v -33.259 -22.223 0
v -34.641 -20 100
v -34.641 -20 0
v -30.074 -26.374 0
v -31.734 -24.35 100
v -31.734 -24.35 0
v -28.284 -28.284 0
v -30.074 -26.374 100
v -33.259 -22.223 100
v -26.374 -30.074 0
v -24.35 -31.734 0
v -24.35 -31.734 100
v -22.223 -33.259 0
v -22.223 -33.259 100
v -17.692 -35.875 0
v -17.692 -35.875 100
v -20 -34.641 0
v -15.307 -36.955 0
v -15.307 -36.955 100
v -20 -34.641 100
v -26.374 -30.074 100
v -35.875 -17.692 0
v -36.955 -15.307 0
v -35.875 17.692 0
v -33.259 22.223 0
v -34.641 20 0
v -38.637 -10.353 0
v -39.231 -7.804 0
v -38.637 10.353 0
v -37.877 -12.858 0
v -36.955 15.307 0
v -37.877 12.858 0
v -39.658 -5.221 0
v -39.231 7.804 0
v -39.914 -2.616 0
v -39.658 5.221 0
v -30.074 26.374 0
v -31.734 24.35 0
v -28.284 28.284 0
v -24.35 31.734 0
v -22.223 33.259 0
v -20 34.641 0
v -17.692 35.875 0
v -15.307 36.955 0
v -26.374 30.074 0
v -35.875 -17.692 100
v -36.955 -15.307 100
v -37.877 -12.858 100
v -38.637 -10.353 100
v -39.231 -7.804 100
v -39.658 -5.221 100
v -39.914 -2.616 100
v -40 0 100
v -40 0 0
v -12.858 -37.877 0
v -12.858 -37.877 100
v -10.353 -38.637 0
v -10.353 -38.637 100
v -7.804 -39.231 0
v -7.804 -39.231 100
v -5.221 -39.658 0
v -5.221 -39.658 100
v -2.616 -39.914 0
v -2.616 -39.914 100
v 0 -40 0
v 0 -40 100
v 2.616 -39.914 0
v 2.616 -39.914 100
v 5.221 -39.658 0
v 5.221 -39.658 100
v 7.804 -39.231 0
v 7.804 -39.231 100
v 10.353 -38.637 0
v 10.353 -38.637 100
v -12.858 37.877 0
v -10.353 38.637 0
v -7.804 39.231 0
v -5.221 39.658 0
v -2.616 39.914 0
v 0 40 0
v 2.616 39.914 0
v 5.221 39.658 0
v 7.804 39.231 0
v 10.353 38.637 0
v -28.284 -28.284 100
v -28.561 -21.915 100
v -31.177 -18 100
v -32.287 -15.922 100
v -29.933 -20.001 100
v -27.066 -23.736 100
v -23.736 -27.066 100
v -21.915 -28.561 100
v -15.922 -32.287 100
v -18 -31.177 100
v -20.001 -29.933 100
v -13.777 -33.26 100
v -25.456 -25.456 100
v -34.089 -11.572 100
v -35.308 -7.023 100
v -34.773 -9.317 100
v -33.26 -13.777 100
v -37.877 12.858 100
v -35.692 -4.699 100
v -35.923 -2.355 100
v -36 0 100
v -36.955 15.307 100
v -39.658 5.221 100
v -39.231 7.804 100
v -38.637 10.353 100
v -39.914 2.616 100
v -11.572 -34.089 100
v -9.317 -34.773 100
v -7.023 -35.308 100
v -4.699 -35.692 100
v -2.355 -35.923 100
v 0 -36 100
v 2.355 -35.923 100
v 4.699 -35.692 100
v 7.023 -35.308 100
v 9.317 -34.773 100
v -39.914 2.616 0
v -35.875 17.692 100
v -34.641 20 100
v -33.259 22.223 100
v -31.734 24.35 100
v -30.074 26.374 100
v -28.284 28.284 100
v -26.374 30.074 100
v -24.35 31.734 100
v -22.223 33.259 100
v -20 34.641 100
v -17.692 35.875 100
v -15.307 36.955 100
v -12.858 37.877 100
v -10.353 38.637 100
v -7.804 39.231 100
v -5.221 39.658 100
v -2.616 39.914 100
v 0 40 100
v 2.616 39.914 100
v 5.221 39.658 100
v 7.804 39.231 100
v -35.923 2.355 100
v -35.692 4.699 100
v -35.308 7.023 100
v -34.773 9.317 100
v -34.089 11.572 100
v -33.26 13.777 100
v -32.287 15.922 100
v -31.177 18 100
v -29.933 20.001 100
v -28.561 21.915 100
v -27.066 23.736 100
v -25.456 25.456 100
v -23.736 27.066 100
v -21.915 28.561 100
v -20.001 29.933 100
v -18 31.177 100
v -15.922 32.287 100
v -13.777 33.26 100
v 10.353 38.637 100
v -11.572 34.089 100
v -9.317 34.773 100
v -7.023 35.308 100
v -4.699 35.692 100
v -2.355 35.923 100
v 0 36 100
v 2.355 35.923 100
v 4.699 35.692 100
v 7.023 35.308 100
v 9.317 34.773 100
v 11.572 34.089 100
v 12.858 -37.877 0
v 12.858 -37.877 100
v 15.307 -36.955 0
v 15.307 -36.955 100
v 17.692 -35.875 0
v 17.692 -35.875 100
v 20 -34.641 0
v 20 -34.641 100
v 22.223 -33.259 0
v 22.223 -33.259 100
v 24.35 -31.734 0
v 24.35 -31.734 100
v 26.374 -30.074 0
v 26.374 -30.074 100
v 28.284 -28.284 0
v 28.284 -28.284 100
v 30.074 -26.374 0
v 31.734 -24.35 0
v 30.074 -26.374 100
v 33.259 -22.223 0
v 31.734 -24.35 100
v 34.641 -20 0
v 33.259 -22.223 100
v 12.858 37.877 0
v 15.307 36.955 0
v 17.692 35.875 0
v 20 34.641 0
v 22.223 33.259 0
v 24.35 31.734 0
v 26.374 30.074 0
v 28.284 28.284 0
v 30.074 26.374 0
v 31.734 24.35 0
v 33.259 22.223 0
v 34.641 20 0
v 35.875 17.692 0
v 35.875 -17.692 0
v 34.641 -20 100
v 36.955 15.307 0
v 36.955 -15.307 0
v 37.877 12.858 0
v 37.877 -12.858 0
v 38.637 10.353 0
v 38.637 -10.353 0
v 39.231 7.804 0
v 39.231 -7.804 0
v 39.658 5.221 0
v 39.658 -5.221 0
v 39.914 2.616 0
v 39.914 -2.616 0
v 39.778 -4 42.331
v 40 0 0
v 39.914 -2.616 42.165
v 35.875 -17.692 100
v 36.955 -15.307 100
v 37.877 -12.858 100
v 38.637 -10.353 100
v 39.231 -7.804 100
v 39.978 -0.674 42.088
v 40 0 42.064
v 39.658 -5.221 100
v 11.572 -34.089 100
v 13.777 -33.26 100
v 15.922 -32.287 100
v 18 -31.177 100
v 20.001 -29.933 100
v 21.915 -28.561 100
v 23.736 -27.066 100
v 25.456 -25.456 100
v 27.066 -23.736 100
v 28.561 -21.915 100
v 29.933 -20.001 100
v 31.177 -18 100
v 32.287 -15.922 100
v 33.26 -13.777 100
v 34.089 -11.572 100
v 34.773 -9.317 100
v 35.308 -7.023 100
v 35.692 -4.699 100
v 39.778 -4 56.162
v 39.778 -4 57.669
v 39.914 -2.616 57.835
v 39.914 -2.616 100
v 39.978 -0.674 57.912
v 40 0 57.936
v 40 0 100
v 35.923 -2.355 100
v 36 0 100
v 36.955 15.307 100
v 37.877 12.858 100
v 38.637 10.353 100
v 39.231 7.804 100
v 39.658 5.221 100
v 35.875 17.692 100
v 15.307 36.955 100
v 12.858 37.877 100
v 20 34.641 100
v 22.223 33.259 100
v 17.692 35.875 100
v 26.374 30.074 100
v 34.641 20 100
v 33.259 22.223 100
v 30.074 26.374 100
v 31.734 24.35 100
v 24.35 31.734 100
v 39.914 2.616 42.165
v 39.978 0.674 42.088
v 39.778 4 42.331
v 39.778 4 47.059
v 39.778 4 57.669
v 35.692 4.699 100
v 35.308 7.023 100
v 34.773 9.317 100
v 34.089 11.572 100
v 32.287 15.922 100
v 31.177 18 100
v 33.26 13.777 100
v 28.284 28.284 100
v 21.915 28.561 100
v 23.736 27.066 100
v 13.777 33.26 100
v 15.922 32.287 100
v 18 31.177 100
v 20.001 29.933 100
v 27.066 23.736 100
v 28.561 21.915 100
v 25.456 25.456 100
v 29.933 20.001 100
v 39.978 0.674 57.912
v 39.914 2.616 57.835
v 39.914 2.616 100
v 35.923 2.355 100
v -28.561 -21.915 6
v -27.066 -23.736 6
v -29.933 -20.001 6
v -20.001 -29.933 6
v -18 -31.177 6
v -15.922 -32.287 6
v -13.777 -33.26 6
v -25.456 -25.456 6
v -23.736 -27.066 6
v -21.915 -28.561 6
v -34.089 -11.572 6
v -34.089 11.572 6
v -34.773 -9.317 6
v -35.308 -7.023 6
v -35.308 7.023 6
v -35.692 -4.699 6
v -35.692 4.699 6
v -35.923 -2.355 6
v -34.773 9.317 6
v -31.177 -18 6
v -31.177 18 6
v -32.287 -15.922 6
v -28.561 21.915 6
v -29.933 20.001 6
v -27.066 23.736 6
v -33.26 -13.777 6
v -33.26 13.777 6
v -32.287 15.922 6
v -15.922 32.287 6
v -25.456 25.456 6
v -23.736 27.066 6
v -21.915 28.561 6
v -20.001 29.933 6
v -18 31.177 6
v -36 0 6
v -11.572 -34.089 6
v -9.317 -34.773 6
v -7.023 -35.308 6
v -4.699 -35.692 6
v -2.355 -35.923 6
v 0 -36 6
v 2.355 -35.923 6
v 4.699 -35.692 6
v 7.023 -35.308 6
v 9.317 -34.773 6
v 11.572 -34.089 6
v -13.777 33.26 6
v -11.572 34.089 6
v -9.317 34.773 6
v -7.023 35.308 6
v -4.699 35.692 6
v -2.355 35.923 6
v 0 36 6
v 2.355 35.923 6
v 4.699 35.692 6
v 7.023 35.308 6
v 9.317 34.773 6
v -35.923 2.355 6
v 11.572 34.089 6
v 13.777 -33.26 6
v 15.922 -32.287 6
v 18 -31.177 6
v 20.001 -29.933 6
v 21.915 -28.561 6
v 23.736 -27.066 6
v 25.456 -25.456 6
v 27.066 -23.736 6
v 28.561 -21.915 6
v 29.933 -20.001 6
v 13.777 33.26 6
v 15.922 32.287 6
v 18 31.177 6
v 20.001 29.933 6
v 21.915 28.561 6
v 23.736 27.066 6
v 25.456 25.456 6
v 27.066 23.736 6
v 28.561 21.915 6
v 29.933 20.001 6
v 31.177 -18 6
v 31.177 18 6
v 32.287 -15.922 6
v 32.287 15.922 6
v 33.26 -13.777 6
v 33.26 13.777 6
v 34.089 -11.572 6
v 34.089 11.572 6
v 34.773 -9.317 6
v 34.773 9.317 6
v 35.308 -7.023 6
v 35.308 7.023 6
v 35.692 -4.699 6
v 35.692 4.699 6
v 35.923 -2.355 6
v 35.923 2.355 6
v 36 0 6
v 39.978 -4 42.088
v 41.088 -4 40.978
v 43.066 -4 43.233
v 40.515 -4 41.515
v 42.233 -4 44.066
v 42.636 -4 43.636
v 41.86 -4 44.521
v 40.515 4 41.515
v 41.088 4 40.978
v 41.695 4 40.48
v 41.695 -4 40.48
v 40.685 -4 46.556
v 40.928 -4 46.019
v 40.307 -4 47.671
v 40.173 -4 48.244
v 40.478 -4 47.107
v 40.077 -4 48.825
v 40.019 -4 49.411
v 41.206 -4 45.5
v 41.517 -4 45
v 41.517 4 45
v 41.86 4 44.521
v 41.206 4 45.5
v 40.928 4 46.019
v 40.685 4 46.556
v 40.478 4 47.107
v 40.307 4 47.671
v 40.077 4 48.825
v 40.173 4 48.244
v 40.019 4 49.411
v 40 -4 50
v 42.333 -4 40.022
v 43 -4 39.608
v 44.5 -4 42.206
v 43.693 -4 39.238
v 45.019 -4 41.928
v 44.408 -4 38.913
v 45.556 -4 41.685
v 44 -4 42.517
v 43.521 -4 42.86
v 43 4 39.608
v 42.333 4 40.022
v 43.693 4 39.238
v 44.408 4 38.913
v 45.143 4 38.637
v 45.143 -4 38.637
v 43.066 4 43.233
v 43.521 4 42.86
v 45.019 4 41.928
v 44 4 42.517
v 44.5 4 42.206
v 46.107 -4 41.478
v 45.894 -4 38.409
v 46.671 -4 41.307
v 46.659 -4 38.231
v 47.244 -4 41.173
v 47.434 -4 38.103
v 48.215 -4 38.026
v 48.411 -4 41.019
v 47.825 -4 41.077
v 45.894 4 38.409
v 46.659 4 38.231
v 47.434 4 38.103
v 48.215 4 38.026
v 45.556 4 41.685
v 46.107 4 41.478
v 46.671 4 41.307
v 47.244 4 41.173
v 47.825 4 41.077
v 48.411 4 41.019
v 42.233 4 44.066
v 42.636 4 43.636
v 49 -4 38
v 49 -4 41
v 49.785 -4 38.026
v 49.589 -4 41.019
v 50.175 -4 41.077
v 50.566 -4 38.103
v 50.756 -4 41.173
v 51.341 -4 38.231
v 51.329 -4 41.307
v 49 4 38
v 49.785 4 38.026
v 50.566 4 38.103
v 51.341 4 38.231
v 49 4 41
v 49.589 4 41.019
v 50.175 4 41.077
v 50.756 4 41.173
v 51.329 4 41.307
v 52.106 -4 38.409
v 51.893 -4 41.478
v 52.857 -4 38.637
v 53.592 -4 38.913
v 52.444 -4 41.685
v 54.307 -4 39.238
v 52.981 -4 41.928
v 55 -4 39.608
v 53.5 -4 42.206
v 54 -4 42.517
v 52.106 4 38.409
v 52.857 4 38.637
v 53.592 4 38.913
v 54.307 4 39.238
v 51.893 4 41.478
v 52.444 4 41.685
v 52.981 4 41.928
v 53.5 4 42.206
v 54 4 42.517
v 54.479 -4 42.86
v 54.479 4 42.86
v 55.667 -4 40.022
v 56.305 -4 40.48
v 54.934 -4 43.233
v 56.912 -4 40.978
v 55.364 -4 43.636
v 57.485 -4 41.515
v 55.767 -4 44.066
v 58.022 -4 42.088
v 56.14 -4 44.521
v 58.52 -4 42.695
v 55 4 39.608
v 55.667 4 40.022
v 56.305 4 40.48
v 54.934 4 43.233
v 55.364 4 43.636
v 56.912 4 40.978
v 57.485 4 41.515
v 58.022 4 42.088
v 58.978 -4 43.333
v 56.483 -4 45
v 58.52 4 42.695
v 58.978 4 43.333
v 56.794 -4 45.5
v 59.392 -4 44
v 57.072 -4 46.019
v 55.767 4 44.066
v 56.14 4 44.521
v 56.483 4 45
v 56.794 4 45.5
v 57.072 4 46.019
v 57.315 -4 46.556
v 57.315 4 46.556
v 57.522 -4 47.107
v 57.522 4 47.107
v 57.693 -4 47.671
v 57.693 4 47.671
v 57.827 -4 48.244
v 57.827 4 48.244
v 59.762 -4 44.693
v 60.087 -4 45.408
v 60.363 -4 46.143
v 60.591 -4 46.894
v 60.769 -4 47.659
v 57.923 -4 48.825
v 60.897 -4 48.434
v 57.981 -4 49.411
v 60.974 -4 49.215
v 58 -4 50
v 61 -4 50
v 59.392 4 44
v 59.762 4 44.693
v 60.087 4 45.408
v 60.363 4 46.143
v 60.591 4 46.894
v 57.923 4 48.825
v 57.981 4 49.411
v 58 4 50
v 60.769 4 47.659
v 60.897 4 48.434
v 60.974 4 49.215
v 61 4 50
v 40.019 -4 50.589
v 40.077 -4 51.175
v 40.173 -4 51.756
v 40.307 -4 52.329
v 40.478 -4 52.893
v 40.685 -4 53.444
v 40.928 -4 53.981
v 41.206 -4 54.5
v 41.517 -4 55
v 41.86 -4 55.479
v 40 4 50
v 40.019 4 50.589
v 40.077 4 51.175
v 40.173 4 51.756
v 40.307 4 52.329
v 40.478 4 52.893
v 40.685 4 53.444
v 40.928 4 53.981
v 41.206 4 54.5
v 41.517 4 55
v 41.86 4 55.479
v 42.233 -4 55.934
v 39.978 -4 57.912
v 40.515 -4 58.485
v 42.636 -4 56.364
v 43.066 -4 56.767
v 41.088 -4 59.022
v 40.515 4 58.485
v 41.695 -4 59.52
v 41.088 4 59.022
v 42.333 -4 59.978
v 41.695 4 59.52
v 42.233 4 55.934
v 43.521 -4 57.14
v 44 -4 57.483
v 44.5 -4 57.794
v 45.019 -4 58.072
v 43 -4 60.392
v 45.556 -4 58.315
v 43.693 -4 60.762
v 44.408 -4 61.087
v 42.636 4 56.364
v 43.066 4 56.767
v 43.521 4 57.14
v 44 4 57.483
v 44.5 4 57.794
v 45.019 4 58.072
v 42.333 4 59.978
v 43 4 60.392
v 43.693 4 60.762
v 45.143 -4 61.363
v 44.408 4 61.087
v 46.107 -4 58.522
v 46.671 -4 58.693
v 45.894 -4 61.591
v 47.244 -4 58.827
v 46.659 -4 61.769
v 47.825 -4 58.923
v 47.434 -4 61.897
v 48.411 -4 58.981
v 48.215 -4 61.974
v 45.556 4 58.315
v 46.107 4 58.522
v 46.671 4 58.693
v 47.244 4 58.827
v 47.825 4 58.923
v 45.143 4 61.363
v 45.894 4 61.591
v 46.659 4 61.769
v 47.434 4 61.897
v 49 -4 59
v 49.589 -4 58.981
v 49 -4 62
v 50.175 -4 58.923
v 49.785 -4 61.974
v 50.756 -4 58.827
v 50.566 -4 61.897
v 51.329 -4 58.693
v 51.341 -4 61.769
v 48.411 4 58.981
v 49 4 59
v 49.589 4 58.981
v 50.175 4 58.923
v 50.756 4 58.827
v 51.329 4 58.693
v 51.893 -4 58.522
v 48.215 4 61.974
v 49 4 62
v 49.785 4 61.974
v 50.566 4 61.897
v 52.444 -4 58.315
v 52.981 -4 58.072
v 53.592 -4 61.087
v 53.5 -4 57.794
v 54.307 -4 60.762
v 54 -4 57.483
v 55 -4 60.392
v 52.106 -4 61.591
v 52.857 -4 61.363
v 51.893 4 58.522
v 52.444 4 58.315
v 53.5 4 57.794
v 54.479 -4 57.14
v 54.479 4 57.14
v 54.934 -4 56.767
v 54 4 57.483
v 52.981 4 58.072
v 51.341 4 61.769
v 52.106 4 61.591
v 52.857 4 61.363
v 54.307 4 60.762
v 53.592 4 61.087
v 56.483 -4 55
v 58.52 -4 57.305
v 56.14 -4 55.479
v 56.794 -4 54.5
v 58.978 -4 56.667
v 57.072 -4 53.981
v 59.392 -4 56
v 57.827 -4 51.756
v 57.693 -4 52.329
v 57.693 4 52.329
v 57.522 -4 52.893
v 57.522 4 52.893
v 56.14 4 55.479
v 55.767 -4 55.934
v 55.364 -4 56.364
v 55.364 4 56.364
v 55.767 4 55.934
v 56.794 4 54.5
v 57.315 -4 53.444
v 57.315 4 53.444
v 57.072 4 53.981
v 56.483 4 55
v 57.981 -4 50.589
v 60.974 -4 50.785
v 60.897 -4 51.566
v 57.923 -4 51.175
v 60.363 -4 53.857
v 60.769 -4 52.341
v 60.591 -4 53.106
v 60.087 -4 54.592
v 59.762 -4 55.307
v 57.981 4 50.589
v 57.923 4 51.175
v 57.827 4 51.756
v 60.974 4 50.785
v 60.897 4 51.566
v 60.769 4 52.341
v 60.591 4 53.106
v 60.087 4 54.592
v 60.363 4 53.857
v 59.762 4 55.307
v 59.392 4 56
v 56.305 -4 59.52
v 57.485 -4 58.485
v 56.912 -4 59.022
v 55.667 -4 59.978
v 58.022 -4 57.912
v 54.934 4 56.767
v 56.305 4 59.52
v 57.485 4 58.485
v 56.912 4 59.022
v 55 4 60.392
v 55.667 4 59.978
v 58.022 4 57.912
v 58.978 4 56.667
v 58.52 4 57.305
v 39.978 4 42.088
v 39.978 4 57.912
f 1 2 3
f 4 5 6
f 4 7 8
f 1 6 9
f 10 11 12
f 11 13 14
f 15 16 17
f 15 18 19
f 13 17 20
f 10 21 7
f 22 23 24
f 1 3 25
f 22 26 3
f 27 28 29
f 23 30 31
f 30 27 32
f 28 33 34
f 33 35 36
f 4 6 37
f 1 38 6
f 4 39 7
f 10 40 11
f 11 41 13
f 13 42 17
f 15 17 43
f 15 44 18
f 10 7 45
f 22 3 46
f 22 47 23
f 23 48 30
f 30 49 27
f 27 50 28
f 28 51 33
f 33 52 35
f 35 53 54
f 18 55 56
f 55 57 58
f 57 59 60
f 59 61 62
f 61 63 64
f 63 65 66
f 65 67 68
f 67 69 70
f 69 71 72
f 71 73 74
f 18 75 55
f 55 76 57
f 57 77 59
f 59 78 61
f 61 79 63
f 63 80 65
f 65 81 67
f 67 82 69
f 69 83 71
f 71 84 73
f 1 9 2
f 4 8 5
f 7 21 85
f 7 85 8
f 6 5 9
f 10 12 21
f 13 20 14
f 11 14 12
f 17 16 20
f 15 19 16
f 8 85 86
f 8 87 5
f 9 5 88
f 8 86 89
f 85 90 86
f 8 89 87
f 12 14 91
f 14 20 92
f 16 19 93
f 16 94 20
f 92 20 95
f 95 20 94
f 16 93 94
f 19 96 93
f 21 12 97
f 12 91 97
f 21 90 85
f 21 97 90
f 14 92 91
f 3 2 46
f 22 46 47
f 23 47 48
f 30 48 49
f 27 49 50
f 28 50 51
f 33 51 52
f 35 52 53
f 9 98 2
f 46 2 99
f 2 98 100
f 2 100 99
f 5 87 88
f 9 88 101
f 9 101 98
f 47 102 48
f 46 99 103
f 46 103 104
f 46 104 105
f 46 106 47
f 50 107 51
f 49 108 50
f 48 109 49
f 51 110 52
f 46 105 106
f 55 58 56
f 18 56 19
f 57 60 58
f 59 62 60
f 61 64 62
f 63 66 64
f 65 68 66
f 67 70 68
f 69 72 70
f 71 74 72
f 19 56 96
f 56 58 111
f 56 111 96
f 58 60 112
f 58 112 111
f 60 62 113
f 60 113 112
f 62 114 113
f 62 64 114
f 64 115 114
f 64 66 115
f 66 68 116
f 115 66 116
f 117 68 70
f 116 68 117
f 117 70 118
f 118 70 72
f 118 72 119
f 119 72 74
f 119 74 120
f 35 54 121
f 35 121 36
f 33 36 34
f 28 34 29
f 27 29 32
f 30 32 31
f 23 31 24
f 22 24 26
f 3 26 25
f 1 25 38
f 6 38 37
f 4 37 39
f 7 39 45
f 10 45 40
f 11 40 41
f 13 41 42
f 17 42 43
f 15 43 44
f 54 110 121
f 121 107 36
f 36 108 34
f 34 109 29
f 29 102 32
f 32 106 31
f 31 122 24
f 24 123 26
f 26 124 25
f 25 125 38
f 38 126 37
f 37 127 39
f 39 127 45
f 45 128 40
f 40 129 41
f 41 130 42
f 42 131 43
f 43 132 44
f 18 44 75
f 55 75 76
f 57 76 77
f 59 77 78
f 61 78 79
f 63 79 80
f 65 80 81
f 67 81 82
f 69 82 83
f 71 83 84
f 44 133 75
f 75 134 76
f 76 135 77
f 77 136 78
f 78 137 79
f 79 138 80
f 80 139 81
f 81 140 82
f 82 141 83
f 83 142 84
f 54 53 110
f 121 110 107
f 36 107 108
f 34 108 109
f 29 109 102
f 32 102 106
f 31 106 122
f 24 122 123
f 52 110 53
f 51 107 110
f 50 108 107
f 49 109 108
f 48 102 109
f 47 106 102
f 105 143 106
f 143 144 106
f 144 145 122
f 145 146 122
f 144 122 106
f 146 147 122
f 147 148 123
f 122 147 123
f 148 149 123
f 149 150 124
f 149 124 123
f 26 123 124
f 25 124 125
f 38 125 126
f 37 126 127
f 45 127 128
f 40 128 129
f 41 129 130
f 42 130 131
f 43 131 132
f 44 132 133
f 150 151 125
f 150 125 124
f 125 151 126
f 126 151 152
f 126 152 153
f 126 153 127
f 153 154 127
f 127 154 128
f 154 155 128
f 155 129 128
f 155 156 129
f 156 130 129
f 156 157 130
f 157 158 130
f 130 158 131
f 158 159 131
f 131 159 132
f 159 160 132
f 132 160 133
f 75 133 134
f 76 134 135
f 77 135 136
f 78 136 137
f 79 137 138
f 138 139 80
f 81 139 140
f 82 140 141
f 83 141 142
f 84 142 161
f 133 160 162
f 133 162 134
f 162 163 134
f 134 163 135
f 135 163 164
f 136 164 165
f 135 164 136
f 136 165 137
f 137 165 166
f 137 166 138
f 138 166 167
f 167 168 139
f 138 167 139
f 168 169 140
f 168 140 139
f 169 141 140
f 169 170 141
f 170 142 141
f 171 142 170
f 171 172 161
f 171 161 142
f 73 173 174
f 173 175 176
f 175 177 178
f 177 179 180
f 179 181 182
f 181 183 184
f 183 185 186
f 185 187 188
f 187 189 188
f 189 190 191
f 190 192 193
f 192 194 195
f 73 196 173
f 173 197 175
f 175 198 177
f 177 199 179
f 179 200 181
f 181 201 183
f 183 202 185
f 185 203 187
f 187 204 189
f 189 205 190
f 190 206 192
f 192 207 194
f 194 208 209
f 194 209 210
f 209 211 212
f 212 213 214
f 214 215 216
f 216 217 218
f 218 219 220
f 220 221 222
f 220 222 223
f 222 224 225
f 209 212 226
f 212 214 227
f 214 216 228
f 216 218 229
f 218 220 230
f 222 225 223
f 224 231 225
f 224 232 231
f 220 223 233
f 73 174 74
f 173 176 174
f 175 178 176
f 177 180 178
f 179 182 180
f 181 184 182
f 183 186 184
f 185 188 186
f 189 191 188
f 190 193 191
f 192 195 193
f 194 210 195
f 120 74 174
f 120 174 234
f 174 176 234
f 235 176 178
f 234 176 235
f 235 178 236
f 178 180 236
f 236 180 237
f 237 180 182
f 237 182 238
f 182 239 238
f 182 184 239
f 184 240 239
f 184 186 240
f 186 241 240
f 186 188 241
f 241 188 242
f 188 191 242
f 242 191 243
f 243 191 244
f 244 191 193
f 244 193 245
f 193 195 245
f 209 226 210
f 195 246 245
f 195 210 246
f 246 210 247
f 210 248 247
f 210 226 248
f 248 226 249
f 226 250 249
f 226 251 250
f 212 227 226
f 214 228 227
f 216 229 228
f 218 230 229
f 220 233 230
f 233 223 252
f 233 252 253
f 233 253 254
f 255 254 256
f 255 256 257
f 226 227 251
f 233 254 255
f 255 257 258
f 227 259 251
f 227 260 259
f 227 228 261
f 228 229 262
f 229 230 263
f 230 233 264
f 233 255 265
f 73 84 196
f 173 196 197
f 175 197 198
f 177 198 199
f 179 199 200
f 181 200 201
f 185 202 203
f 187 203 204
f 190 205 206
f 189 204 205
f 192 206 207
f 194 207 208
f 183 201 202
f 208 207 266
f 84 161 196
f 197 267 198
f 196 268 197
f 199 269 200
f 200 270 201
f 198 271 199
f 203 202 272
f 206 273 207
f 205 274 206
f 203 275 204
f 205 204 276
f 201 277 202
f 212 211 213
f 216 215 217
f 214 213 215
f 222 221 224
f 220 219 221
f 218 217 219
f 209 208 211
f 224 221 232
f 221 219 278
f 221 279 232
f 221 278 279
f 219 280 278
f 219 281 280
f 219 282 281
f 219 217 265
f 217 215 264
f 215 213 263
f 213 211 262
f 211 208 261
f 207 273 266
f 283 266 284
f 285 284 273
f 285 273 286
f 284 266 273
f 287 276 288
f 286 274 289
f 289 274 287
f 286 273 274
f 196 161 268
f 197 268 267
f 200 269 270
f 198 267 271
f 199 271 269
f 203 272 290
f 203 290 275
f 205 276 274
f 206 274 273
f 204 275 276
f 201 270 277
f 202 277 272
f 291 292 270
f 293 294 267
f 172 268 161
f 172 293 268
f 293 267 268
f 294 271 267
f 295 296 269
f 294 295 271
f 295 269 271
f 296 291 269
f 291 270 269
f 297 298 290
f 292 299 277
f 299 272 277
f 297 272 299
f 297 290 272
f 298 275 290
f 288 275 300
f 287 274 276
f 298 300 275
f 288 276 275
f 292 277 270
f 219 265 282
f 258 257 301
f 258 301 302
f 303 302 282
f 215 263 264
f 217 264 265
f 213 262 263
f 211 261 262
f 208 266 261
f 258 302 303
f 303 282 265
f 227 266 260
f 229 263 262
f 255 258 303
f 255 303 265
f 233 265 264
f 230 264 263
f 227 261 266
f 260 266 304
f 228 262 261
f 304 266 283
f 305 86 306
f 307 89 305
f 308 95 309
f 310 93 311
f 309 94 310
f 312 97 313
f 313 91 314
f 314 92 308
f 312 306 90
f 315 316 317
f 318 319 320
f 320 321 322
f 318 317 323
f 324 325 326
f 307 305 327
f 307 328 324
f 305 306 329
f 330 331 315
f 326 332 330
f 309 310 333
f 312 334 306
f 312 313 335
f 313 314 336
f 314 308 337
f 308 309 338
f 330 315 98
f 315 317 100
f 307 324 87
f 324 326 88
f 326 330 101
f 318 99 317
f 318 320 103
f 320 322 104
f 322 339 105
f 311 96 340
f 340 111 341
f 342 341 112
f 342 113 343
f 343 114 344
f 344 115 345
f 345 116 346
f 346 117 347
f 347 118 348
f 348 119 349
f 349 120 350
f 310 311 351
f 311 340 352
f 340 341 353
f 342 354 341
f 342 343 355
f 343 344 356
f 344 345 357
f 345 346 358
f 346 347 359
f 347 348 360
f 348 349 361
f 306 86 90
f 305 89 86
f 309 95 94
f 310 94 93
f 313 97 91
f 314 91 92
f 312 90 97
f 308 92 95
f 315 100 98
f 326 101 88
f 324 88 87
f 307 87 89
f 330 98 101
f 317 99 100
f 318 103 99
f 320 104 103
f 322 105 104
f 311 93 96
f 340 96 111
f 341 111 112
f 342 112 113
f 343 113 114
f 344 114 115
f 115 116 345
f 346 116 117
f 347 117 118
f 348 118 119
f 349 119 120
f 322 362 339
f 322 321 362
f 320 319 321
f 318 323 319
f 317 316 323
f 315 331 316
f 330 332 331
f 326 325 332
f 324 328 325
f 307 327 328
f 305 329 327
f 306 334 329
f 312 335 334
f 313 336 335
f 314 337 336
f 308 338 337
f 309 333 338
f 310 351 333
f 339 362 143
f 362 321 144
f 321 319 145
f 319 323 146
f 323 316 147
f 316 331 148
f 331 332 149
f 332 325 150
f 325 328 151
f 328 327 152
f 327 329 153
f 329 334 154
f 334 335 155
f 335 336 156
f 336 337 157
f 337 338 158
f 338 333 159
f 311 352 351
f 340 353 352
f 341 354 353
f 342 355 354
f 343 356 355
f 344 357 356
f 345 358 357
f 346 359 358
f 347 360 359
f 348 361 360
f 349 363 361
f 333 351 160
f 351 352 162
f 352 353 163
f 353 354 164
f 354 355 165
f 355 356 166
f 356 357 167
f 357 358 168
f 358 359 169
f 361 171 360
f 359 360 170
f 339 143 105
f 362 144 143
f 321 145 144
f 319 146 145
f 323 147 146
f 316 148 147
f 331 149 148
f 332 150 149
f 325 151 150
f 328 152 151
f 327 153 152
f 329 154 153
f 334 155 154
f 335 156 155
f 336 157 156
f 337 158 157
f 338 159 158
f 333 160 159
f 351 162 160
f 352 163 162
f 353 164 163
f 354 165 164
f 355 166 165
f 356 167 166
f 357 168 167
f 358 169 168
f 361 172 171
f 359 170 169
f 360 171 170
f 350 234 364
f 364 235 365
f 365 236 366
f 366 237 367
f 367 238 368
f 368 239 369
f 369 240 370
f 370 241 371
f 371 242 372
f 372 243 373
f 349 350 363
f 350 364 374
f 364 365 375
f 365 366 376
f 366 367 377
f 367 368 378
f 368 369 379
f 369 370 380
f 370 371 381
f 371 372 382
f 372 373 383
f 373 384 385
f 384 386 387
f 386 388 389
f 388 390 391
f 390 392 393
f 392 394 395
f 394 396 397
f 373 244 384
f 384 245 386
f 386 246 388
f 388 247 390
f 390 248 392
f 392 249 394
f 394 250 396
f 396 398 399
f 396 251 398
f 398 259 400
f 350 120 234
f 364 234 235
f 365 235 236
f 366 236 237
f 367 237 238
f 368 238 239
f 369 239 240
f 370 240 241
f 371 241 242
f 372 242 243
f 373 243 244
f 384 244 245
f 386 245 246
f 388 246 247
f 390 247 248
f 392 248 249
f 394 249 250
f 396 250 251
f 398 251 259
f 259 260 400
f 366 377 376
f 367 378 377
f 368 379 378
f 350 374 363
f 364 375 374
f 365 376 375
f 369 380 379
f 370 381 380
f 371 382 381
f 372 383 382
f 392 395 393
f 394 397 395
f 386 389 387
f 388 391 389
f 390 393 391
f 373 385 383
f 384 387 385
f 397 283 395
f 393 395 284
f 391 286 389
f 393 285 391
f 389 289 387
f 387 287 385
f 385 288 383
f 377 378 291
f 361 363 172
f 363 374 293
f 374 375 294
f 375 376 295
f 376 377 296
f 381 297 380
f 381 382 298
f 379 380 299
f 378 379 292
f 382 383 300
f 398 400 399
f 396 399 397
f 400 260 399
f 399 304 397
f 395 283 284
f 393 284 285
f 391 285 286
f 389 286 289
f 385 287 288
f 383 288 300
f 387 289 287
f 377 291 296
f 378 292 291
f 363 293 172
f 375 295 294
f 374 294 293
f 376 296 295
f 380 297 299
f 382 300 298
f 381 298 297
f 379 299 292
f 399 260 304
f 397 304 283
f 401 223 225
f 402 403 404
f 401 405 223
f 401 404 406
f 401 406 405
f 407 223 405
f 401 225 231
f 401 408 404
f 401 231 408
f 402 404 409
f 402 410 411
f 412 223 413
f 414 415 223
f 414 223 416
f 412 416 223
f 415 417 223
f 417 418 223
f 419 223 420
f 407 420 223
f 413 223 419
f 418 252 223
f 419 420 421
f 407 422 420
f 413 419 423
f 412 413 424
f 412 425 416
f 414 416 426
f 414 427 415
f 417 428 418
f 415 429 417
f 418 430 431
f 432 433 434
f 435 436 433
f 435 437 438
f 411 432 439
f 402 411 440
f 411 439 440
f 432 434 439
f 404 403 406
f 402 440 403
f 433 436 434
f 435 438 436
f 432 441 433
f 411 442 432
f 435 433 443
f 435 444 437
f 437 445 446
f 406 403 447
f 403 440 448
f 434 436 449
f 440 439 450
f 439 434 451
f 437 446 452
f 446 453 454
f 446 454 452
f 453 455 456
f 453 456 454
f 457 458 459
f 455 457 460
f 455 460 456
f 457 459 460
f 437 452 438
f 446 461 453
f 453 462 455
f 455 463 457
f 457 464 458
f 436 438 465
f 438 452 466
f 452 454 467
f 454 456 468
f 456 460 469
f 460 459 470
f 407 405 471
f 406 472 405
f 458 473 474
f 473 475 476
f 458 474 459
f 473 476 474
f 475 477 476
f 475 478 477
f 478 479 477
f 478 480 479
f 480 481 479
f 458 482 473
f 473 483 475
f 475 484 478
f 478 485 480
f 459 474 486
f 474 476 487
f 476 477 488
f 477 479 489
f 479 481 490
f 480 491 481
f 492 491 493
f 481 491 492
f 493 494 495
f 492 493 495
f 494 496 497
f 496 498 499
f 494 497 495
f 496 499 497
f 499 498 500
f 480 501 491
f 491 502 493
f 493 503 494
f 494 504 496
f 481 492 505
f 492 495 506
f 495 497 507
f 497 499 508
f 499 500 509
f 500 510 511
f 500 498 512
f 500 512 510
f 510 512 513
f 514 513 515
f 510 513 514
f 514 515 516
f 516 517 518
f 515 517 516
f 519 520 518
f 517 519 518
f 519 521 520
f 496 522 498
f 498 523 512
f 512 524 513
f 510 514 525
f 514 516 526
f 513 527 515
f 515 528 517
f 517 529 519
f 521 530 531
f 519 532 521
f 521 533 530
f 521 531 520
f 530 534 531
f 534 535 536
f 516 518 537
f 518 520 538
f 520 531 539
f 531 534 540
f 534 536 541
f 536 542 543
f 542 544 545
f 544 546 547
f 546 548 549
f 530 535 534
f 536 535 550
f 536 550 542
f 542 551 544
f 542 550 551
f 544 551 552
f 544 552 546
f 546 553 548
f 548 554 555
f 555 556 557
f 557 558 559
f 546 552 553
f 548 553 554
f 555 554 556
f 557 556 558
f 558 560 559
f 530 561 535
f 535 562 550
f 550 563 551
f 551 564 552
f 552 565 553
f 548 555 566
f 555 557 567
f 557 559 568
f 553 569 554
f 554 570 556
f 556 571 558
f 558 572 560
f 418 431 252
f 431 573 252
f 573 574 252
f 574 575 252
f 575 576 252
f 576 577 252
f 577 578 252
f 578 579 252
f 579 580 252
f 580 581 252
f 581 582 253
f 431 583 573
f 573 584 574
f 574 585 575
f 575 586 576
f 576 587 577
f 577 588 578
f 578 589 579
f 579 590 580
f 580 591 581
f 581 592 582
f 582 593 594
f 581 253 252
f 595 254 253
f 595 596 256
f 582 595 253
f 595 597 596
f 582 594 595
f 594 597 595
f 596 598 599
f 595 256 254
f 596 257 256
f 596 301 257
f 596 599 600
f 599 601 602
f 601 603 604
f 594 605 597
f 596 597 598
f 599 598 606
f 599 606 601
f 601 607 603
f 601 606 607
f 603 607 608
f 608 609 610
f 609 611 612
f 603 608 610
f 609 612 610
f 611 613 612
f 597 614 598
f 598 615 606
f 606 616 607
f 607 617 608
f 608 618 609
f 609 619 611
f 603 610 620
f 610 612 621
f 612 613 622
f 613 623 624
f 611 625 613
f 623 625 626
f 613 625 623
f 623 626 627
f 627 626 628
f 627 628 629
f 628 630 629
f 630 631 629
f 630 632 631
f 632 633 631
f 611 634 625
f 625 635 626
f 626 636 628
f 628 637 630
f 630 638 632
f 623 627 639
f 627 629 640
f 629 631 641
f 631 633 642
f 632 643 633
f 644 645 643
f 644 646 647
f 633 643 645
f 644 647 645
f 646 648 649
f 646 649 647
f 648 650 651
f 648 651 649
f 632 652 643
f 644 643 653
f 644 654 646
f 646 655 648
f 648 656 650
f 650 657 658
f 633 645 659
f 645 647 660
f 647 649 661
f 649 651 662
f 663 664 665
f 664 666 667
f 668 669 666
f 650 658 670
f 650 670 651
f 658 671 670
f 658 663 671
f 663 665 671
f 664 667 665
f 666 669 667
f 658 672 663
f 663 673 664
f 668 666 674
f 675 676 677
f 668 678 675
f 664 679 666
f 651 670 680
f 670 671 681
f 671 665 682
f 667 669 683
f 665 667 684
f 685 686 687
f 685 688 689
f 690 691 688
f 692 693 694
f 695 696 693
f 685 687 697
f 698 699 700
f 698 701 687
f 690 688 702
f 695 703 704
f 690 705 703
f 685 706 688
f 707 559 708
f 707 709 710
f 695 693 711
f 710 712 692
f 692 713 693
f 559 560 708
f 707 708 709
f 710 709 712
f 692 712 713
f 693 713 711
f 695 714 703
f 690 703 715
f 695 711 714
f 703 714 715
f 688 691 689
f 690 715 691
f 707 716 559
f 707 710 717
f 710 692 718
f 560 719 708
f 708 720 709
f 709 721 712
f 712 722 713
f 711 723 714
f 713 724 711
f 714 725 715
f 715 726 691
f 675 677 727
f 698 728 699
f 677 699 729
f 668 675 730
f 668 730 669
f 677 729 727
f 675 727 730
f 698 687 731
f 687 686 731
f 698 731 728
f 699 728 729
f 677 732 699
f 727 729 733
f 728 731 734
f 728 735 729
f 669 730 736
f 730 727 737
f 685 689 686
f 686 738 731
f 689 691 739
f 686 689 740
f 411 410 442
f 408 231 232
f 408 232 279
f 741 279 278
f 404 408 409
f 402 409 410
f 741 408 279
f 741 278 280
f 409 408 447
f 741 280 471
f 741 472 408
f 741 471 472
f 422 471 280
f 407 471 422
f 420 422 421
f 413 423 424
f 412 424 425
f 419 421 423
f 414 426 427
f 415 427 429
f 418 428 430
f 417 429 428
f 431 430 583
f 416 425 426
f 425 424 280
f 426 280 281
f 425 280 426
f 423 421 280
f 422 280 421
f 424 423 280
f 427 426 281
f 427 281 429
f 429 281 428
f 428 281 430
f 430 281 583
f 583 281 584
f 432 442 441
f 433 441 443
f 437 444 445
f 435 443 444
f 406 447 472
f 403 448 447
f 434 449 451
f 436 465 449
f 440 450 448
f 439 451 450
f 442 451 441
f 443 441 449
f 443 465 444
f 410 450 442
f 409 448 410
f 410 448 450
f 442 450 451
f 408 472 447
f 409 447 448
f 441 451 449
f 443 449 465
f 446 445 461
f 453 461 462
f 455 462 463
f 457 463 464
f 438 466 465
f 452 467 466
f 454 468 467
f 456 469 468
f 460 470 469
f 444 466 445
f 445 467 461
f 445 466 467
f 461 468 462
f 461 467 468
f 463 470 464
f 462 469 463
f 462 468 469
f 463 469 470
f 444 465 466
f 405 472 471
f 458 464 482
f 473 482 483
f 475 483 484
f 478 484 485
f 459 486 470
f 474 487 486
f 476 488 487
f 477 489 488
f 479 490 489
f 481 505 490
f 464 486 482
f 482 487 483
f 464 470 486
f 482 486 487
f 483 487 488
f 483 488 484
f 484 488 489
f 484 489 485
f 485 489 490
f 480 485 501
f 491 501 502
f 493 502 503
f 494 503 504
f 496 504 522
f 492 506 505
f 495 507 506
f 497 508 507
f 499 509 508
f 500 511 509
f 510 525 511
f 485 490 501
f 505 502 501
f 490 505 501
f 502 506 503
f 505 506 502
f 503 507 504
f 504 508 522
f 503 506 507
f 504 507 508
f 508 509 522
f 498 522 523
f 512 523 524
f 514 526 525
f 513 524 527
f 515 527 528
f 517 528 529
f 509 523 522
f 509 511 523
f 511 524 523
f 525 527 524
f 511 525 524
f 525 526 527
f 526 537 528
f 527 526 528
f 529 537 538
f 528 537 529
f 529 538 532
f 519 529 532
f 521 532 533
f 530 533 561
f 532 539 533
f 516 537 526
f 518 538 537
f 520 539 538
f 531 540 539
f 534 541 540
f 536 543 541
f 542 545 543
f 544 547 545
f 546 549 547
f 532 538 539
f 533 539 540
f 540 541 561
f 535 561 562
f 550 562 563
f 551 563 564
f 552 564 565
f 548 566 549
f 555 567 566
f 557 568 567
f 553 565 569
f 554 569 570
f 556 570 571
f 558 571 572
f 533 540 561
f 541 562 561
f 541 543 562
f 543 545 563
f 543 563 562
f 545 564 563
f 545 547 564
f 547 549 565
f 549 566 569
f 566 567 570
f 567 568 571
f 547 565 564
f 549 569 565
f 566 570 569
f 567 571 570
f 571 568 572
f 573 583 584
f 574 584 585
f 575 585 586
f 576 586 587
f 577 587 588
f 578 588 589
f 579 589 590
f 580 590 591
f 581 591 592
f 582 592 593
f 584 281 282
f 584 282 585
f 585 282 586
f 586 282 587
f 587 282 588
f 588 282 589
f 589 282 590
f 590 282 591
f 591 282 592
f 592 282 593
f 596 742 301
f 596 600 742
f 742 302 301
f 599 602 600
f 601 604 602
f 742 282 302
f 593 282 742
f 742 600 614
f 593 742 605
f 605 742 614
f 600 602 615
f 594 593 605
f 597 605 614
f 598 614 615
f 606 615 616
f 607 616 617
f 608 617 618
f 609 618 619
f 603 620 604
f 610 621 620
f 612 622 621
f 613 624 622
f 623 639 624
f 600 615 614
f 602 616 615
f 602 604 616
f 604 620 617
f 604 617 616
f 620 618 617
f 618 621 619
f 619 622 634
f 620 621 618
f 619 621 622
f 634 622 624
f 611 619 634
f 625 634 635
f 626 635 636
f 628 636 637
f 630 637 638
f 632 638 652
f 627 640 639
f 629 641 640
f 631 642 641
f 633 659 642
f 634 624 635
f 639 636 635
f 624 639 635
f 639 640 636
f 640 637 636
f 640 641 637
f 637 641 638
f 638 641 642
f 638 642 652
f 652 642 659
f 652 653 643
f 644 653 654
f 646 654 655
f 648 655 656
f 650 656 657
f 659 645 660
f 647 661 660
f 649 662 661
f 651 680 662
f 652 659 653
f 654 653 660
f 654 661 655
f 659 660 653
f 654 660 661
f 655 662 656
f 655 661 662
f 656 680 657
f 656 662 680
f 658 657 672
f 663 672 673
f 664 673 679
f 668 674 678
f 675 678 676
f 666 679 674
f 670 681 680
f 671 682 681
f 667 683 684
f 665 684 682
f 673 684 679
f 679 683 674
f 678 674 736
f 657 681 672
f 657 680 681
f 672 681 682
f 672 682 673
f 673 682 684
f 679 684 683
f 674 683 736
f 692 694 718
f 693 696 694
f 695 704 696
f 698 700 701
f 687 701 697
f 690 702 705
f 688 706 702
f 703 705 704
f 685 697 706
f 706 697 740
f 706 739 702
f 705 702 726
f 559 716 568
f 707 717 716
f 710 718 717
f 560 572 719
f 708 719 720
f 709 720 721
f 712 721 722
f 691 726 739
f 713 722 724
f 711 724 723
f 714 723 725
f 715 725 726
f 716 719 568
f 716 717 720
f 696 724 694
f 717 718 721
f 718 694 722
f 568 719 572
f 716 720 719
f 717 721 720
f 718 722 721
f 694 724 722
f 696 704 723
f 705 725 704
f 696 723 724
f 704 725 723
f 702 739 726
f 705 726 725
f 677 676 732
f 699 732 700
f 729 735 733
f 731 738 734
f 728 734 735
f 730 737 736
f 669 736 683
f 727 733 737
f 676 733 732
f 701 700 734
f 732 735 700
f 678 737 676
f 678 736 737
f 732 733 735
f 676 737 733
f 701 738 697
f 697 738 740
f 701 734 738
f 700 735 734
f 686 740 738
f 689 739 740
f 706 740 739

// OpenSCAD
$fn = 96;

cup_outer_radius = 40;
cup_height = 100;
wall_thickness = 4;
bottom_thickness = 6;

handle_outer_radius = 12;
handle_inner_radius = 9;
handle_depth = 8;
handle_center_x = cup_outer_radius + 9;

union() {
    // 上部が開いたカップ本体
    difference() {
        cylinder(h = cup_height, r = cup_outer_radius);

        translate([0, 0, bottom_thickness])
            cylinder(
                h = cup_height - bottom_thickness + 0.1,
                r = cup_outer_radius - wall_thickness
            );
    }

    // カップの中ほどに付くリング状の取手
    translate([handle_center_x, 0, cup_height / 2])
        rotate([90, 0, 0])
            linear_extrude(height = handle_depth, center = true)
                difference() {
                    circle(r = handle_outer_radius);
                    circle(r = handle_inner_radius);
                }
}
